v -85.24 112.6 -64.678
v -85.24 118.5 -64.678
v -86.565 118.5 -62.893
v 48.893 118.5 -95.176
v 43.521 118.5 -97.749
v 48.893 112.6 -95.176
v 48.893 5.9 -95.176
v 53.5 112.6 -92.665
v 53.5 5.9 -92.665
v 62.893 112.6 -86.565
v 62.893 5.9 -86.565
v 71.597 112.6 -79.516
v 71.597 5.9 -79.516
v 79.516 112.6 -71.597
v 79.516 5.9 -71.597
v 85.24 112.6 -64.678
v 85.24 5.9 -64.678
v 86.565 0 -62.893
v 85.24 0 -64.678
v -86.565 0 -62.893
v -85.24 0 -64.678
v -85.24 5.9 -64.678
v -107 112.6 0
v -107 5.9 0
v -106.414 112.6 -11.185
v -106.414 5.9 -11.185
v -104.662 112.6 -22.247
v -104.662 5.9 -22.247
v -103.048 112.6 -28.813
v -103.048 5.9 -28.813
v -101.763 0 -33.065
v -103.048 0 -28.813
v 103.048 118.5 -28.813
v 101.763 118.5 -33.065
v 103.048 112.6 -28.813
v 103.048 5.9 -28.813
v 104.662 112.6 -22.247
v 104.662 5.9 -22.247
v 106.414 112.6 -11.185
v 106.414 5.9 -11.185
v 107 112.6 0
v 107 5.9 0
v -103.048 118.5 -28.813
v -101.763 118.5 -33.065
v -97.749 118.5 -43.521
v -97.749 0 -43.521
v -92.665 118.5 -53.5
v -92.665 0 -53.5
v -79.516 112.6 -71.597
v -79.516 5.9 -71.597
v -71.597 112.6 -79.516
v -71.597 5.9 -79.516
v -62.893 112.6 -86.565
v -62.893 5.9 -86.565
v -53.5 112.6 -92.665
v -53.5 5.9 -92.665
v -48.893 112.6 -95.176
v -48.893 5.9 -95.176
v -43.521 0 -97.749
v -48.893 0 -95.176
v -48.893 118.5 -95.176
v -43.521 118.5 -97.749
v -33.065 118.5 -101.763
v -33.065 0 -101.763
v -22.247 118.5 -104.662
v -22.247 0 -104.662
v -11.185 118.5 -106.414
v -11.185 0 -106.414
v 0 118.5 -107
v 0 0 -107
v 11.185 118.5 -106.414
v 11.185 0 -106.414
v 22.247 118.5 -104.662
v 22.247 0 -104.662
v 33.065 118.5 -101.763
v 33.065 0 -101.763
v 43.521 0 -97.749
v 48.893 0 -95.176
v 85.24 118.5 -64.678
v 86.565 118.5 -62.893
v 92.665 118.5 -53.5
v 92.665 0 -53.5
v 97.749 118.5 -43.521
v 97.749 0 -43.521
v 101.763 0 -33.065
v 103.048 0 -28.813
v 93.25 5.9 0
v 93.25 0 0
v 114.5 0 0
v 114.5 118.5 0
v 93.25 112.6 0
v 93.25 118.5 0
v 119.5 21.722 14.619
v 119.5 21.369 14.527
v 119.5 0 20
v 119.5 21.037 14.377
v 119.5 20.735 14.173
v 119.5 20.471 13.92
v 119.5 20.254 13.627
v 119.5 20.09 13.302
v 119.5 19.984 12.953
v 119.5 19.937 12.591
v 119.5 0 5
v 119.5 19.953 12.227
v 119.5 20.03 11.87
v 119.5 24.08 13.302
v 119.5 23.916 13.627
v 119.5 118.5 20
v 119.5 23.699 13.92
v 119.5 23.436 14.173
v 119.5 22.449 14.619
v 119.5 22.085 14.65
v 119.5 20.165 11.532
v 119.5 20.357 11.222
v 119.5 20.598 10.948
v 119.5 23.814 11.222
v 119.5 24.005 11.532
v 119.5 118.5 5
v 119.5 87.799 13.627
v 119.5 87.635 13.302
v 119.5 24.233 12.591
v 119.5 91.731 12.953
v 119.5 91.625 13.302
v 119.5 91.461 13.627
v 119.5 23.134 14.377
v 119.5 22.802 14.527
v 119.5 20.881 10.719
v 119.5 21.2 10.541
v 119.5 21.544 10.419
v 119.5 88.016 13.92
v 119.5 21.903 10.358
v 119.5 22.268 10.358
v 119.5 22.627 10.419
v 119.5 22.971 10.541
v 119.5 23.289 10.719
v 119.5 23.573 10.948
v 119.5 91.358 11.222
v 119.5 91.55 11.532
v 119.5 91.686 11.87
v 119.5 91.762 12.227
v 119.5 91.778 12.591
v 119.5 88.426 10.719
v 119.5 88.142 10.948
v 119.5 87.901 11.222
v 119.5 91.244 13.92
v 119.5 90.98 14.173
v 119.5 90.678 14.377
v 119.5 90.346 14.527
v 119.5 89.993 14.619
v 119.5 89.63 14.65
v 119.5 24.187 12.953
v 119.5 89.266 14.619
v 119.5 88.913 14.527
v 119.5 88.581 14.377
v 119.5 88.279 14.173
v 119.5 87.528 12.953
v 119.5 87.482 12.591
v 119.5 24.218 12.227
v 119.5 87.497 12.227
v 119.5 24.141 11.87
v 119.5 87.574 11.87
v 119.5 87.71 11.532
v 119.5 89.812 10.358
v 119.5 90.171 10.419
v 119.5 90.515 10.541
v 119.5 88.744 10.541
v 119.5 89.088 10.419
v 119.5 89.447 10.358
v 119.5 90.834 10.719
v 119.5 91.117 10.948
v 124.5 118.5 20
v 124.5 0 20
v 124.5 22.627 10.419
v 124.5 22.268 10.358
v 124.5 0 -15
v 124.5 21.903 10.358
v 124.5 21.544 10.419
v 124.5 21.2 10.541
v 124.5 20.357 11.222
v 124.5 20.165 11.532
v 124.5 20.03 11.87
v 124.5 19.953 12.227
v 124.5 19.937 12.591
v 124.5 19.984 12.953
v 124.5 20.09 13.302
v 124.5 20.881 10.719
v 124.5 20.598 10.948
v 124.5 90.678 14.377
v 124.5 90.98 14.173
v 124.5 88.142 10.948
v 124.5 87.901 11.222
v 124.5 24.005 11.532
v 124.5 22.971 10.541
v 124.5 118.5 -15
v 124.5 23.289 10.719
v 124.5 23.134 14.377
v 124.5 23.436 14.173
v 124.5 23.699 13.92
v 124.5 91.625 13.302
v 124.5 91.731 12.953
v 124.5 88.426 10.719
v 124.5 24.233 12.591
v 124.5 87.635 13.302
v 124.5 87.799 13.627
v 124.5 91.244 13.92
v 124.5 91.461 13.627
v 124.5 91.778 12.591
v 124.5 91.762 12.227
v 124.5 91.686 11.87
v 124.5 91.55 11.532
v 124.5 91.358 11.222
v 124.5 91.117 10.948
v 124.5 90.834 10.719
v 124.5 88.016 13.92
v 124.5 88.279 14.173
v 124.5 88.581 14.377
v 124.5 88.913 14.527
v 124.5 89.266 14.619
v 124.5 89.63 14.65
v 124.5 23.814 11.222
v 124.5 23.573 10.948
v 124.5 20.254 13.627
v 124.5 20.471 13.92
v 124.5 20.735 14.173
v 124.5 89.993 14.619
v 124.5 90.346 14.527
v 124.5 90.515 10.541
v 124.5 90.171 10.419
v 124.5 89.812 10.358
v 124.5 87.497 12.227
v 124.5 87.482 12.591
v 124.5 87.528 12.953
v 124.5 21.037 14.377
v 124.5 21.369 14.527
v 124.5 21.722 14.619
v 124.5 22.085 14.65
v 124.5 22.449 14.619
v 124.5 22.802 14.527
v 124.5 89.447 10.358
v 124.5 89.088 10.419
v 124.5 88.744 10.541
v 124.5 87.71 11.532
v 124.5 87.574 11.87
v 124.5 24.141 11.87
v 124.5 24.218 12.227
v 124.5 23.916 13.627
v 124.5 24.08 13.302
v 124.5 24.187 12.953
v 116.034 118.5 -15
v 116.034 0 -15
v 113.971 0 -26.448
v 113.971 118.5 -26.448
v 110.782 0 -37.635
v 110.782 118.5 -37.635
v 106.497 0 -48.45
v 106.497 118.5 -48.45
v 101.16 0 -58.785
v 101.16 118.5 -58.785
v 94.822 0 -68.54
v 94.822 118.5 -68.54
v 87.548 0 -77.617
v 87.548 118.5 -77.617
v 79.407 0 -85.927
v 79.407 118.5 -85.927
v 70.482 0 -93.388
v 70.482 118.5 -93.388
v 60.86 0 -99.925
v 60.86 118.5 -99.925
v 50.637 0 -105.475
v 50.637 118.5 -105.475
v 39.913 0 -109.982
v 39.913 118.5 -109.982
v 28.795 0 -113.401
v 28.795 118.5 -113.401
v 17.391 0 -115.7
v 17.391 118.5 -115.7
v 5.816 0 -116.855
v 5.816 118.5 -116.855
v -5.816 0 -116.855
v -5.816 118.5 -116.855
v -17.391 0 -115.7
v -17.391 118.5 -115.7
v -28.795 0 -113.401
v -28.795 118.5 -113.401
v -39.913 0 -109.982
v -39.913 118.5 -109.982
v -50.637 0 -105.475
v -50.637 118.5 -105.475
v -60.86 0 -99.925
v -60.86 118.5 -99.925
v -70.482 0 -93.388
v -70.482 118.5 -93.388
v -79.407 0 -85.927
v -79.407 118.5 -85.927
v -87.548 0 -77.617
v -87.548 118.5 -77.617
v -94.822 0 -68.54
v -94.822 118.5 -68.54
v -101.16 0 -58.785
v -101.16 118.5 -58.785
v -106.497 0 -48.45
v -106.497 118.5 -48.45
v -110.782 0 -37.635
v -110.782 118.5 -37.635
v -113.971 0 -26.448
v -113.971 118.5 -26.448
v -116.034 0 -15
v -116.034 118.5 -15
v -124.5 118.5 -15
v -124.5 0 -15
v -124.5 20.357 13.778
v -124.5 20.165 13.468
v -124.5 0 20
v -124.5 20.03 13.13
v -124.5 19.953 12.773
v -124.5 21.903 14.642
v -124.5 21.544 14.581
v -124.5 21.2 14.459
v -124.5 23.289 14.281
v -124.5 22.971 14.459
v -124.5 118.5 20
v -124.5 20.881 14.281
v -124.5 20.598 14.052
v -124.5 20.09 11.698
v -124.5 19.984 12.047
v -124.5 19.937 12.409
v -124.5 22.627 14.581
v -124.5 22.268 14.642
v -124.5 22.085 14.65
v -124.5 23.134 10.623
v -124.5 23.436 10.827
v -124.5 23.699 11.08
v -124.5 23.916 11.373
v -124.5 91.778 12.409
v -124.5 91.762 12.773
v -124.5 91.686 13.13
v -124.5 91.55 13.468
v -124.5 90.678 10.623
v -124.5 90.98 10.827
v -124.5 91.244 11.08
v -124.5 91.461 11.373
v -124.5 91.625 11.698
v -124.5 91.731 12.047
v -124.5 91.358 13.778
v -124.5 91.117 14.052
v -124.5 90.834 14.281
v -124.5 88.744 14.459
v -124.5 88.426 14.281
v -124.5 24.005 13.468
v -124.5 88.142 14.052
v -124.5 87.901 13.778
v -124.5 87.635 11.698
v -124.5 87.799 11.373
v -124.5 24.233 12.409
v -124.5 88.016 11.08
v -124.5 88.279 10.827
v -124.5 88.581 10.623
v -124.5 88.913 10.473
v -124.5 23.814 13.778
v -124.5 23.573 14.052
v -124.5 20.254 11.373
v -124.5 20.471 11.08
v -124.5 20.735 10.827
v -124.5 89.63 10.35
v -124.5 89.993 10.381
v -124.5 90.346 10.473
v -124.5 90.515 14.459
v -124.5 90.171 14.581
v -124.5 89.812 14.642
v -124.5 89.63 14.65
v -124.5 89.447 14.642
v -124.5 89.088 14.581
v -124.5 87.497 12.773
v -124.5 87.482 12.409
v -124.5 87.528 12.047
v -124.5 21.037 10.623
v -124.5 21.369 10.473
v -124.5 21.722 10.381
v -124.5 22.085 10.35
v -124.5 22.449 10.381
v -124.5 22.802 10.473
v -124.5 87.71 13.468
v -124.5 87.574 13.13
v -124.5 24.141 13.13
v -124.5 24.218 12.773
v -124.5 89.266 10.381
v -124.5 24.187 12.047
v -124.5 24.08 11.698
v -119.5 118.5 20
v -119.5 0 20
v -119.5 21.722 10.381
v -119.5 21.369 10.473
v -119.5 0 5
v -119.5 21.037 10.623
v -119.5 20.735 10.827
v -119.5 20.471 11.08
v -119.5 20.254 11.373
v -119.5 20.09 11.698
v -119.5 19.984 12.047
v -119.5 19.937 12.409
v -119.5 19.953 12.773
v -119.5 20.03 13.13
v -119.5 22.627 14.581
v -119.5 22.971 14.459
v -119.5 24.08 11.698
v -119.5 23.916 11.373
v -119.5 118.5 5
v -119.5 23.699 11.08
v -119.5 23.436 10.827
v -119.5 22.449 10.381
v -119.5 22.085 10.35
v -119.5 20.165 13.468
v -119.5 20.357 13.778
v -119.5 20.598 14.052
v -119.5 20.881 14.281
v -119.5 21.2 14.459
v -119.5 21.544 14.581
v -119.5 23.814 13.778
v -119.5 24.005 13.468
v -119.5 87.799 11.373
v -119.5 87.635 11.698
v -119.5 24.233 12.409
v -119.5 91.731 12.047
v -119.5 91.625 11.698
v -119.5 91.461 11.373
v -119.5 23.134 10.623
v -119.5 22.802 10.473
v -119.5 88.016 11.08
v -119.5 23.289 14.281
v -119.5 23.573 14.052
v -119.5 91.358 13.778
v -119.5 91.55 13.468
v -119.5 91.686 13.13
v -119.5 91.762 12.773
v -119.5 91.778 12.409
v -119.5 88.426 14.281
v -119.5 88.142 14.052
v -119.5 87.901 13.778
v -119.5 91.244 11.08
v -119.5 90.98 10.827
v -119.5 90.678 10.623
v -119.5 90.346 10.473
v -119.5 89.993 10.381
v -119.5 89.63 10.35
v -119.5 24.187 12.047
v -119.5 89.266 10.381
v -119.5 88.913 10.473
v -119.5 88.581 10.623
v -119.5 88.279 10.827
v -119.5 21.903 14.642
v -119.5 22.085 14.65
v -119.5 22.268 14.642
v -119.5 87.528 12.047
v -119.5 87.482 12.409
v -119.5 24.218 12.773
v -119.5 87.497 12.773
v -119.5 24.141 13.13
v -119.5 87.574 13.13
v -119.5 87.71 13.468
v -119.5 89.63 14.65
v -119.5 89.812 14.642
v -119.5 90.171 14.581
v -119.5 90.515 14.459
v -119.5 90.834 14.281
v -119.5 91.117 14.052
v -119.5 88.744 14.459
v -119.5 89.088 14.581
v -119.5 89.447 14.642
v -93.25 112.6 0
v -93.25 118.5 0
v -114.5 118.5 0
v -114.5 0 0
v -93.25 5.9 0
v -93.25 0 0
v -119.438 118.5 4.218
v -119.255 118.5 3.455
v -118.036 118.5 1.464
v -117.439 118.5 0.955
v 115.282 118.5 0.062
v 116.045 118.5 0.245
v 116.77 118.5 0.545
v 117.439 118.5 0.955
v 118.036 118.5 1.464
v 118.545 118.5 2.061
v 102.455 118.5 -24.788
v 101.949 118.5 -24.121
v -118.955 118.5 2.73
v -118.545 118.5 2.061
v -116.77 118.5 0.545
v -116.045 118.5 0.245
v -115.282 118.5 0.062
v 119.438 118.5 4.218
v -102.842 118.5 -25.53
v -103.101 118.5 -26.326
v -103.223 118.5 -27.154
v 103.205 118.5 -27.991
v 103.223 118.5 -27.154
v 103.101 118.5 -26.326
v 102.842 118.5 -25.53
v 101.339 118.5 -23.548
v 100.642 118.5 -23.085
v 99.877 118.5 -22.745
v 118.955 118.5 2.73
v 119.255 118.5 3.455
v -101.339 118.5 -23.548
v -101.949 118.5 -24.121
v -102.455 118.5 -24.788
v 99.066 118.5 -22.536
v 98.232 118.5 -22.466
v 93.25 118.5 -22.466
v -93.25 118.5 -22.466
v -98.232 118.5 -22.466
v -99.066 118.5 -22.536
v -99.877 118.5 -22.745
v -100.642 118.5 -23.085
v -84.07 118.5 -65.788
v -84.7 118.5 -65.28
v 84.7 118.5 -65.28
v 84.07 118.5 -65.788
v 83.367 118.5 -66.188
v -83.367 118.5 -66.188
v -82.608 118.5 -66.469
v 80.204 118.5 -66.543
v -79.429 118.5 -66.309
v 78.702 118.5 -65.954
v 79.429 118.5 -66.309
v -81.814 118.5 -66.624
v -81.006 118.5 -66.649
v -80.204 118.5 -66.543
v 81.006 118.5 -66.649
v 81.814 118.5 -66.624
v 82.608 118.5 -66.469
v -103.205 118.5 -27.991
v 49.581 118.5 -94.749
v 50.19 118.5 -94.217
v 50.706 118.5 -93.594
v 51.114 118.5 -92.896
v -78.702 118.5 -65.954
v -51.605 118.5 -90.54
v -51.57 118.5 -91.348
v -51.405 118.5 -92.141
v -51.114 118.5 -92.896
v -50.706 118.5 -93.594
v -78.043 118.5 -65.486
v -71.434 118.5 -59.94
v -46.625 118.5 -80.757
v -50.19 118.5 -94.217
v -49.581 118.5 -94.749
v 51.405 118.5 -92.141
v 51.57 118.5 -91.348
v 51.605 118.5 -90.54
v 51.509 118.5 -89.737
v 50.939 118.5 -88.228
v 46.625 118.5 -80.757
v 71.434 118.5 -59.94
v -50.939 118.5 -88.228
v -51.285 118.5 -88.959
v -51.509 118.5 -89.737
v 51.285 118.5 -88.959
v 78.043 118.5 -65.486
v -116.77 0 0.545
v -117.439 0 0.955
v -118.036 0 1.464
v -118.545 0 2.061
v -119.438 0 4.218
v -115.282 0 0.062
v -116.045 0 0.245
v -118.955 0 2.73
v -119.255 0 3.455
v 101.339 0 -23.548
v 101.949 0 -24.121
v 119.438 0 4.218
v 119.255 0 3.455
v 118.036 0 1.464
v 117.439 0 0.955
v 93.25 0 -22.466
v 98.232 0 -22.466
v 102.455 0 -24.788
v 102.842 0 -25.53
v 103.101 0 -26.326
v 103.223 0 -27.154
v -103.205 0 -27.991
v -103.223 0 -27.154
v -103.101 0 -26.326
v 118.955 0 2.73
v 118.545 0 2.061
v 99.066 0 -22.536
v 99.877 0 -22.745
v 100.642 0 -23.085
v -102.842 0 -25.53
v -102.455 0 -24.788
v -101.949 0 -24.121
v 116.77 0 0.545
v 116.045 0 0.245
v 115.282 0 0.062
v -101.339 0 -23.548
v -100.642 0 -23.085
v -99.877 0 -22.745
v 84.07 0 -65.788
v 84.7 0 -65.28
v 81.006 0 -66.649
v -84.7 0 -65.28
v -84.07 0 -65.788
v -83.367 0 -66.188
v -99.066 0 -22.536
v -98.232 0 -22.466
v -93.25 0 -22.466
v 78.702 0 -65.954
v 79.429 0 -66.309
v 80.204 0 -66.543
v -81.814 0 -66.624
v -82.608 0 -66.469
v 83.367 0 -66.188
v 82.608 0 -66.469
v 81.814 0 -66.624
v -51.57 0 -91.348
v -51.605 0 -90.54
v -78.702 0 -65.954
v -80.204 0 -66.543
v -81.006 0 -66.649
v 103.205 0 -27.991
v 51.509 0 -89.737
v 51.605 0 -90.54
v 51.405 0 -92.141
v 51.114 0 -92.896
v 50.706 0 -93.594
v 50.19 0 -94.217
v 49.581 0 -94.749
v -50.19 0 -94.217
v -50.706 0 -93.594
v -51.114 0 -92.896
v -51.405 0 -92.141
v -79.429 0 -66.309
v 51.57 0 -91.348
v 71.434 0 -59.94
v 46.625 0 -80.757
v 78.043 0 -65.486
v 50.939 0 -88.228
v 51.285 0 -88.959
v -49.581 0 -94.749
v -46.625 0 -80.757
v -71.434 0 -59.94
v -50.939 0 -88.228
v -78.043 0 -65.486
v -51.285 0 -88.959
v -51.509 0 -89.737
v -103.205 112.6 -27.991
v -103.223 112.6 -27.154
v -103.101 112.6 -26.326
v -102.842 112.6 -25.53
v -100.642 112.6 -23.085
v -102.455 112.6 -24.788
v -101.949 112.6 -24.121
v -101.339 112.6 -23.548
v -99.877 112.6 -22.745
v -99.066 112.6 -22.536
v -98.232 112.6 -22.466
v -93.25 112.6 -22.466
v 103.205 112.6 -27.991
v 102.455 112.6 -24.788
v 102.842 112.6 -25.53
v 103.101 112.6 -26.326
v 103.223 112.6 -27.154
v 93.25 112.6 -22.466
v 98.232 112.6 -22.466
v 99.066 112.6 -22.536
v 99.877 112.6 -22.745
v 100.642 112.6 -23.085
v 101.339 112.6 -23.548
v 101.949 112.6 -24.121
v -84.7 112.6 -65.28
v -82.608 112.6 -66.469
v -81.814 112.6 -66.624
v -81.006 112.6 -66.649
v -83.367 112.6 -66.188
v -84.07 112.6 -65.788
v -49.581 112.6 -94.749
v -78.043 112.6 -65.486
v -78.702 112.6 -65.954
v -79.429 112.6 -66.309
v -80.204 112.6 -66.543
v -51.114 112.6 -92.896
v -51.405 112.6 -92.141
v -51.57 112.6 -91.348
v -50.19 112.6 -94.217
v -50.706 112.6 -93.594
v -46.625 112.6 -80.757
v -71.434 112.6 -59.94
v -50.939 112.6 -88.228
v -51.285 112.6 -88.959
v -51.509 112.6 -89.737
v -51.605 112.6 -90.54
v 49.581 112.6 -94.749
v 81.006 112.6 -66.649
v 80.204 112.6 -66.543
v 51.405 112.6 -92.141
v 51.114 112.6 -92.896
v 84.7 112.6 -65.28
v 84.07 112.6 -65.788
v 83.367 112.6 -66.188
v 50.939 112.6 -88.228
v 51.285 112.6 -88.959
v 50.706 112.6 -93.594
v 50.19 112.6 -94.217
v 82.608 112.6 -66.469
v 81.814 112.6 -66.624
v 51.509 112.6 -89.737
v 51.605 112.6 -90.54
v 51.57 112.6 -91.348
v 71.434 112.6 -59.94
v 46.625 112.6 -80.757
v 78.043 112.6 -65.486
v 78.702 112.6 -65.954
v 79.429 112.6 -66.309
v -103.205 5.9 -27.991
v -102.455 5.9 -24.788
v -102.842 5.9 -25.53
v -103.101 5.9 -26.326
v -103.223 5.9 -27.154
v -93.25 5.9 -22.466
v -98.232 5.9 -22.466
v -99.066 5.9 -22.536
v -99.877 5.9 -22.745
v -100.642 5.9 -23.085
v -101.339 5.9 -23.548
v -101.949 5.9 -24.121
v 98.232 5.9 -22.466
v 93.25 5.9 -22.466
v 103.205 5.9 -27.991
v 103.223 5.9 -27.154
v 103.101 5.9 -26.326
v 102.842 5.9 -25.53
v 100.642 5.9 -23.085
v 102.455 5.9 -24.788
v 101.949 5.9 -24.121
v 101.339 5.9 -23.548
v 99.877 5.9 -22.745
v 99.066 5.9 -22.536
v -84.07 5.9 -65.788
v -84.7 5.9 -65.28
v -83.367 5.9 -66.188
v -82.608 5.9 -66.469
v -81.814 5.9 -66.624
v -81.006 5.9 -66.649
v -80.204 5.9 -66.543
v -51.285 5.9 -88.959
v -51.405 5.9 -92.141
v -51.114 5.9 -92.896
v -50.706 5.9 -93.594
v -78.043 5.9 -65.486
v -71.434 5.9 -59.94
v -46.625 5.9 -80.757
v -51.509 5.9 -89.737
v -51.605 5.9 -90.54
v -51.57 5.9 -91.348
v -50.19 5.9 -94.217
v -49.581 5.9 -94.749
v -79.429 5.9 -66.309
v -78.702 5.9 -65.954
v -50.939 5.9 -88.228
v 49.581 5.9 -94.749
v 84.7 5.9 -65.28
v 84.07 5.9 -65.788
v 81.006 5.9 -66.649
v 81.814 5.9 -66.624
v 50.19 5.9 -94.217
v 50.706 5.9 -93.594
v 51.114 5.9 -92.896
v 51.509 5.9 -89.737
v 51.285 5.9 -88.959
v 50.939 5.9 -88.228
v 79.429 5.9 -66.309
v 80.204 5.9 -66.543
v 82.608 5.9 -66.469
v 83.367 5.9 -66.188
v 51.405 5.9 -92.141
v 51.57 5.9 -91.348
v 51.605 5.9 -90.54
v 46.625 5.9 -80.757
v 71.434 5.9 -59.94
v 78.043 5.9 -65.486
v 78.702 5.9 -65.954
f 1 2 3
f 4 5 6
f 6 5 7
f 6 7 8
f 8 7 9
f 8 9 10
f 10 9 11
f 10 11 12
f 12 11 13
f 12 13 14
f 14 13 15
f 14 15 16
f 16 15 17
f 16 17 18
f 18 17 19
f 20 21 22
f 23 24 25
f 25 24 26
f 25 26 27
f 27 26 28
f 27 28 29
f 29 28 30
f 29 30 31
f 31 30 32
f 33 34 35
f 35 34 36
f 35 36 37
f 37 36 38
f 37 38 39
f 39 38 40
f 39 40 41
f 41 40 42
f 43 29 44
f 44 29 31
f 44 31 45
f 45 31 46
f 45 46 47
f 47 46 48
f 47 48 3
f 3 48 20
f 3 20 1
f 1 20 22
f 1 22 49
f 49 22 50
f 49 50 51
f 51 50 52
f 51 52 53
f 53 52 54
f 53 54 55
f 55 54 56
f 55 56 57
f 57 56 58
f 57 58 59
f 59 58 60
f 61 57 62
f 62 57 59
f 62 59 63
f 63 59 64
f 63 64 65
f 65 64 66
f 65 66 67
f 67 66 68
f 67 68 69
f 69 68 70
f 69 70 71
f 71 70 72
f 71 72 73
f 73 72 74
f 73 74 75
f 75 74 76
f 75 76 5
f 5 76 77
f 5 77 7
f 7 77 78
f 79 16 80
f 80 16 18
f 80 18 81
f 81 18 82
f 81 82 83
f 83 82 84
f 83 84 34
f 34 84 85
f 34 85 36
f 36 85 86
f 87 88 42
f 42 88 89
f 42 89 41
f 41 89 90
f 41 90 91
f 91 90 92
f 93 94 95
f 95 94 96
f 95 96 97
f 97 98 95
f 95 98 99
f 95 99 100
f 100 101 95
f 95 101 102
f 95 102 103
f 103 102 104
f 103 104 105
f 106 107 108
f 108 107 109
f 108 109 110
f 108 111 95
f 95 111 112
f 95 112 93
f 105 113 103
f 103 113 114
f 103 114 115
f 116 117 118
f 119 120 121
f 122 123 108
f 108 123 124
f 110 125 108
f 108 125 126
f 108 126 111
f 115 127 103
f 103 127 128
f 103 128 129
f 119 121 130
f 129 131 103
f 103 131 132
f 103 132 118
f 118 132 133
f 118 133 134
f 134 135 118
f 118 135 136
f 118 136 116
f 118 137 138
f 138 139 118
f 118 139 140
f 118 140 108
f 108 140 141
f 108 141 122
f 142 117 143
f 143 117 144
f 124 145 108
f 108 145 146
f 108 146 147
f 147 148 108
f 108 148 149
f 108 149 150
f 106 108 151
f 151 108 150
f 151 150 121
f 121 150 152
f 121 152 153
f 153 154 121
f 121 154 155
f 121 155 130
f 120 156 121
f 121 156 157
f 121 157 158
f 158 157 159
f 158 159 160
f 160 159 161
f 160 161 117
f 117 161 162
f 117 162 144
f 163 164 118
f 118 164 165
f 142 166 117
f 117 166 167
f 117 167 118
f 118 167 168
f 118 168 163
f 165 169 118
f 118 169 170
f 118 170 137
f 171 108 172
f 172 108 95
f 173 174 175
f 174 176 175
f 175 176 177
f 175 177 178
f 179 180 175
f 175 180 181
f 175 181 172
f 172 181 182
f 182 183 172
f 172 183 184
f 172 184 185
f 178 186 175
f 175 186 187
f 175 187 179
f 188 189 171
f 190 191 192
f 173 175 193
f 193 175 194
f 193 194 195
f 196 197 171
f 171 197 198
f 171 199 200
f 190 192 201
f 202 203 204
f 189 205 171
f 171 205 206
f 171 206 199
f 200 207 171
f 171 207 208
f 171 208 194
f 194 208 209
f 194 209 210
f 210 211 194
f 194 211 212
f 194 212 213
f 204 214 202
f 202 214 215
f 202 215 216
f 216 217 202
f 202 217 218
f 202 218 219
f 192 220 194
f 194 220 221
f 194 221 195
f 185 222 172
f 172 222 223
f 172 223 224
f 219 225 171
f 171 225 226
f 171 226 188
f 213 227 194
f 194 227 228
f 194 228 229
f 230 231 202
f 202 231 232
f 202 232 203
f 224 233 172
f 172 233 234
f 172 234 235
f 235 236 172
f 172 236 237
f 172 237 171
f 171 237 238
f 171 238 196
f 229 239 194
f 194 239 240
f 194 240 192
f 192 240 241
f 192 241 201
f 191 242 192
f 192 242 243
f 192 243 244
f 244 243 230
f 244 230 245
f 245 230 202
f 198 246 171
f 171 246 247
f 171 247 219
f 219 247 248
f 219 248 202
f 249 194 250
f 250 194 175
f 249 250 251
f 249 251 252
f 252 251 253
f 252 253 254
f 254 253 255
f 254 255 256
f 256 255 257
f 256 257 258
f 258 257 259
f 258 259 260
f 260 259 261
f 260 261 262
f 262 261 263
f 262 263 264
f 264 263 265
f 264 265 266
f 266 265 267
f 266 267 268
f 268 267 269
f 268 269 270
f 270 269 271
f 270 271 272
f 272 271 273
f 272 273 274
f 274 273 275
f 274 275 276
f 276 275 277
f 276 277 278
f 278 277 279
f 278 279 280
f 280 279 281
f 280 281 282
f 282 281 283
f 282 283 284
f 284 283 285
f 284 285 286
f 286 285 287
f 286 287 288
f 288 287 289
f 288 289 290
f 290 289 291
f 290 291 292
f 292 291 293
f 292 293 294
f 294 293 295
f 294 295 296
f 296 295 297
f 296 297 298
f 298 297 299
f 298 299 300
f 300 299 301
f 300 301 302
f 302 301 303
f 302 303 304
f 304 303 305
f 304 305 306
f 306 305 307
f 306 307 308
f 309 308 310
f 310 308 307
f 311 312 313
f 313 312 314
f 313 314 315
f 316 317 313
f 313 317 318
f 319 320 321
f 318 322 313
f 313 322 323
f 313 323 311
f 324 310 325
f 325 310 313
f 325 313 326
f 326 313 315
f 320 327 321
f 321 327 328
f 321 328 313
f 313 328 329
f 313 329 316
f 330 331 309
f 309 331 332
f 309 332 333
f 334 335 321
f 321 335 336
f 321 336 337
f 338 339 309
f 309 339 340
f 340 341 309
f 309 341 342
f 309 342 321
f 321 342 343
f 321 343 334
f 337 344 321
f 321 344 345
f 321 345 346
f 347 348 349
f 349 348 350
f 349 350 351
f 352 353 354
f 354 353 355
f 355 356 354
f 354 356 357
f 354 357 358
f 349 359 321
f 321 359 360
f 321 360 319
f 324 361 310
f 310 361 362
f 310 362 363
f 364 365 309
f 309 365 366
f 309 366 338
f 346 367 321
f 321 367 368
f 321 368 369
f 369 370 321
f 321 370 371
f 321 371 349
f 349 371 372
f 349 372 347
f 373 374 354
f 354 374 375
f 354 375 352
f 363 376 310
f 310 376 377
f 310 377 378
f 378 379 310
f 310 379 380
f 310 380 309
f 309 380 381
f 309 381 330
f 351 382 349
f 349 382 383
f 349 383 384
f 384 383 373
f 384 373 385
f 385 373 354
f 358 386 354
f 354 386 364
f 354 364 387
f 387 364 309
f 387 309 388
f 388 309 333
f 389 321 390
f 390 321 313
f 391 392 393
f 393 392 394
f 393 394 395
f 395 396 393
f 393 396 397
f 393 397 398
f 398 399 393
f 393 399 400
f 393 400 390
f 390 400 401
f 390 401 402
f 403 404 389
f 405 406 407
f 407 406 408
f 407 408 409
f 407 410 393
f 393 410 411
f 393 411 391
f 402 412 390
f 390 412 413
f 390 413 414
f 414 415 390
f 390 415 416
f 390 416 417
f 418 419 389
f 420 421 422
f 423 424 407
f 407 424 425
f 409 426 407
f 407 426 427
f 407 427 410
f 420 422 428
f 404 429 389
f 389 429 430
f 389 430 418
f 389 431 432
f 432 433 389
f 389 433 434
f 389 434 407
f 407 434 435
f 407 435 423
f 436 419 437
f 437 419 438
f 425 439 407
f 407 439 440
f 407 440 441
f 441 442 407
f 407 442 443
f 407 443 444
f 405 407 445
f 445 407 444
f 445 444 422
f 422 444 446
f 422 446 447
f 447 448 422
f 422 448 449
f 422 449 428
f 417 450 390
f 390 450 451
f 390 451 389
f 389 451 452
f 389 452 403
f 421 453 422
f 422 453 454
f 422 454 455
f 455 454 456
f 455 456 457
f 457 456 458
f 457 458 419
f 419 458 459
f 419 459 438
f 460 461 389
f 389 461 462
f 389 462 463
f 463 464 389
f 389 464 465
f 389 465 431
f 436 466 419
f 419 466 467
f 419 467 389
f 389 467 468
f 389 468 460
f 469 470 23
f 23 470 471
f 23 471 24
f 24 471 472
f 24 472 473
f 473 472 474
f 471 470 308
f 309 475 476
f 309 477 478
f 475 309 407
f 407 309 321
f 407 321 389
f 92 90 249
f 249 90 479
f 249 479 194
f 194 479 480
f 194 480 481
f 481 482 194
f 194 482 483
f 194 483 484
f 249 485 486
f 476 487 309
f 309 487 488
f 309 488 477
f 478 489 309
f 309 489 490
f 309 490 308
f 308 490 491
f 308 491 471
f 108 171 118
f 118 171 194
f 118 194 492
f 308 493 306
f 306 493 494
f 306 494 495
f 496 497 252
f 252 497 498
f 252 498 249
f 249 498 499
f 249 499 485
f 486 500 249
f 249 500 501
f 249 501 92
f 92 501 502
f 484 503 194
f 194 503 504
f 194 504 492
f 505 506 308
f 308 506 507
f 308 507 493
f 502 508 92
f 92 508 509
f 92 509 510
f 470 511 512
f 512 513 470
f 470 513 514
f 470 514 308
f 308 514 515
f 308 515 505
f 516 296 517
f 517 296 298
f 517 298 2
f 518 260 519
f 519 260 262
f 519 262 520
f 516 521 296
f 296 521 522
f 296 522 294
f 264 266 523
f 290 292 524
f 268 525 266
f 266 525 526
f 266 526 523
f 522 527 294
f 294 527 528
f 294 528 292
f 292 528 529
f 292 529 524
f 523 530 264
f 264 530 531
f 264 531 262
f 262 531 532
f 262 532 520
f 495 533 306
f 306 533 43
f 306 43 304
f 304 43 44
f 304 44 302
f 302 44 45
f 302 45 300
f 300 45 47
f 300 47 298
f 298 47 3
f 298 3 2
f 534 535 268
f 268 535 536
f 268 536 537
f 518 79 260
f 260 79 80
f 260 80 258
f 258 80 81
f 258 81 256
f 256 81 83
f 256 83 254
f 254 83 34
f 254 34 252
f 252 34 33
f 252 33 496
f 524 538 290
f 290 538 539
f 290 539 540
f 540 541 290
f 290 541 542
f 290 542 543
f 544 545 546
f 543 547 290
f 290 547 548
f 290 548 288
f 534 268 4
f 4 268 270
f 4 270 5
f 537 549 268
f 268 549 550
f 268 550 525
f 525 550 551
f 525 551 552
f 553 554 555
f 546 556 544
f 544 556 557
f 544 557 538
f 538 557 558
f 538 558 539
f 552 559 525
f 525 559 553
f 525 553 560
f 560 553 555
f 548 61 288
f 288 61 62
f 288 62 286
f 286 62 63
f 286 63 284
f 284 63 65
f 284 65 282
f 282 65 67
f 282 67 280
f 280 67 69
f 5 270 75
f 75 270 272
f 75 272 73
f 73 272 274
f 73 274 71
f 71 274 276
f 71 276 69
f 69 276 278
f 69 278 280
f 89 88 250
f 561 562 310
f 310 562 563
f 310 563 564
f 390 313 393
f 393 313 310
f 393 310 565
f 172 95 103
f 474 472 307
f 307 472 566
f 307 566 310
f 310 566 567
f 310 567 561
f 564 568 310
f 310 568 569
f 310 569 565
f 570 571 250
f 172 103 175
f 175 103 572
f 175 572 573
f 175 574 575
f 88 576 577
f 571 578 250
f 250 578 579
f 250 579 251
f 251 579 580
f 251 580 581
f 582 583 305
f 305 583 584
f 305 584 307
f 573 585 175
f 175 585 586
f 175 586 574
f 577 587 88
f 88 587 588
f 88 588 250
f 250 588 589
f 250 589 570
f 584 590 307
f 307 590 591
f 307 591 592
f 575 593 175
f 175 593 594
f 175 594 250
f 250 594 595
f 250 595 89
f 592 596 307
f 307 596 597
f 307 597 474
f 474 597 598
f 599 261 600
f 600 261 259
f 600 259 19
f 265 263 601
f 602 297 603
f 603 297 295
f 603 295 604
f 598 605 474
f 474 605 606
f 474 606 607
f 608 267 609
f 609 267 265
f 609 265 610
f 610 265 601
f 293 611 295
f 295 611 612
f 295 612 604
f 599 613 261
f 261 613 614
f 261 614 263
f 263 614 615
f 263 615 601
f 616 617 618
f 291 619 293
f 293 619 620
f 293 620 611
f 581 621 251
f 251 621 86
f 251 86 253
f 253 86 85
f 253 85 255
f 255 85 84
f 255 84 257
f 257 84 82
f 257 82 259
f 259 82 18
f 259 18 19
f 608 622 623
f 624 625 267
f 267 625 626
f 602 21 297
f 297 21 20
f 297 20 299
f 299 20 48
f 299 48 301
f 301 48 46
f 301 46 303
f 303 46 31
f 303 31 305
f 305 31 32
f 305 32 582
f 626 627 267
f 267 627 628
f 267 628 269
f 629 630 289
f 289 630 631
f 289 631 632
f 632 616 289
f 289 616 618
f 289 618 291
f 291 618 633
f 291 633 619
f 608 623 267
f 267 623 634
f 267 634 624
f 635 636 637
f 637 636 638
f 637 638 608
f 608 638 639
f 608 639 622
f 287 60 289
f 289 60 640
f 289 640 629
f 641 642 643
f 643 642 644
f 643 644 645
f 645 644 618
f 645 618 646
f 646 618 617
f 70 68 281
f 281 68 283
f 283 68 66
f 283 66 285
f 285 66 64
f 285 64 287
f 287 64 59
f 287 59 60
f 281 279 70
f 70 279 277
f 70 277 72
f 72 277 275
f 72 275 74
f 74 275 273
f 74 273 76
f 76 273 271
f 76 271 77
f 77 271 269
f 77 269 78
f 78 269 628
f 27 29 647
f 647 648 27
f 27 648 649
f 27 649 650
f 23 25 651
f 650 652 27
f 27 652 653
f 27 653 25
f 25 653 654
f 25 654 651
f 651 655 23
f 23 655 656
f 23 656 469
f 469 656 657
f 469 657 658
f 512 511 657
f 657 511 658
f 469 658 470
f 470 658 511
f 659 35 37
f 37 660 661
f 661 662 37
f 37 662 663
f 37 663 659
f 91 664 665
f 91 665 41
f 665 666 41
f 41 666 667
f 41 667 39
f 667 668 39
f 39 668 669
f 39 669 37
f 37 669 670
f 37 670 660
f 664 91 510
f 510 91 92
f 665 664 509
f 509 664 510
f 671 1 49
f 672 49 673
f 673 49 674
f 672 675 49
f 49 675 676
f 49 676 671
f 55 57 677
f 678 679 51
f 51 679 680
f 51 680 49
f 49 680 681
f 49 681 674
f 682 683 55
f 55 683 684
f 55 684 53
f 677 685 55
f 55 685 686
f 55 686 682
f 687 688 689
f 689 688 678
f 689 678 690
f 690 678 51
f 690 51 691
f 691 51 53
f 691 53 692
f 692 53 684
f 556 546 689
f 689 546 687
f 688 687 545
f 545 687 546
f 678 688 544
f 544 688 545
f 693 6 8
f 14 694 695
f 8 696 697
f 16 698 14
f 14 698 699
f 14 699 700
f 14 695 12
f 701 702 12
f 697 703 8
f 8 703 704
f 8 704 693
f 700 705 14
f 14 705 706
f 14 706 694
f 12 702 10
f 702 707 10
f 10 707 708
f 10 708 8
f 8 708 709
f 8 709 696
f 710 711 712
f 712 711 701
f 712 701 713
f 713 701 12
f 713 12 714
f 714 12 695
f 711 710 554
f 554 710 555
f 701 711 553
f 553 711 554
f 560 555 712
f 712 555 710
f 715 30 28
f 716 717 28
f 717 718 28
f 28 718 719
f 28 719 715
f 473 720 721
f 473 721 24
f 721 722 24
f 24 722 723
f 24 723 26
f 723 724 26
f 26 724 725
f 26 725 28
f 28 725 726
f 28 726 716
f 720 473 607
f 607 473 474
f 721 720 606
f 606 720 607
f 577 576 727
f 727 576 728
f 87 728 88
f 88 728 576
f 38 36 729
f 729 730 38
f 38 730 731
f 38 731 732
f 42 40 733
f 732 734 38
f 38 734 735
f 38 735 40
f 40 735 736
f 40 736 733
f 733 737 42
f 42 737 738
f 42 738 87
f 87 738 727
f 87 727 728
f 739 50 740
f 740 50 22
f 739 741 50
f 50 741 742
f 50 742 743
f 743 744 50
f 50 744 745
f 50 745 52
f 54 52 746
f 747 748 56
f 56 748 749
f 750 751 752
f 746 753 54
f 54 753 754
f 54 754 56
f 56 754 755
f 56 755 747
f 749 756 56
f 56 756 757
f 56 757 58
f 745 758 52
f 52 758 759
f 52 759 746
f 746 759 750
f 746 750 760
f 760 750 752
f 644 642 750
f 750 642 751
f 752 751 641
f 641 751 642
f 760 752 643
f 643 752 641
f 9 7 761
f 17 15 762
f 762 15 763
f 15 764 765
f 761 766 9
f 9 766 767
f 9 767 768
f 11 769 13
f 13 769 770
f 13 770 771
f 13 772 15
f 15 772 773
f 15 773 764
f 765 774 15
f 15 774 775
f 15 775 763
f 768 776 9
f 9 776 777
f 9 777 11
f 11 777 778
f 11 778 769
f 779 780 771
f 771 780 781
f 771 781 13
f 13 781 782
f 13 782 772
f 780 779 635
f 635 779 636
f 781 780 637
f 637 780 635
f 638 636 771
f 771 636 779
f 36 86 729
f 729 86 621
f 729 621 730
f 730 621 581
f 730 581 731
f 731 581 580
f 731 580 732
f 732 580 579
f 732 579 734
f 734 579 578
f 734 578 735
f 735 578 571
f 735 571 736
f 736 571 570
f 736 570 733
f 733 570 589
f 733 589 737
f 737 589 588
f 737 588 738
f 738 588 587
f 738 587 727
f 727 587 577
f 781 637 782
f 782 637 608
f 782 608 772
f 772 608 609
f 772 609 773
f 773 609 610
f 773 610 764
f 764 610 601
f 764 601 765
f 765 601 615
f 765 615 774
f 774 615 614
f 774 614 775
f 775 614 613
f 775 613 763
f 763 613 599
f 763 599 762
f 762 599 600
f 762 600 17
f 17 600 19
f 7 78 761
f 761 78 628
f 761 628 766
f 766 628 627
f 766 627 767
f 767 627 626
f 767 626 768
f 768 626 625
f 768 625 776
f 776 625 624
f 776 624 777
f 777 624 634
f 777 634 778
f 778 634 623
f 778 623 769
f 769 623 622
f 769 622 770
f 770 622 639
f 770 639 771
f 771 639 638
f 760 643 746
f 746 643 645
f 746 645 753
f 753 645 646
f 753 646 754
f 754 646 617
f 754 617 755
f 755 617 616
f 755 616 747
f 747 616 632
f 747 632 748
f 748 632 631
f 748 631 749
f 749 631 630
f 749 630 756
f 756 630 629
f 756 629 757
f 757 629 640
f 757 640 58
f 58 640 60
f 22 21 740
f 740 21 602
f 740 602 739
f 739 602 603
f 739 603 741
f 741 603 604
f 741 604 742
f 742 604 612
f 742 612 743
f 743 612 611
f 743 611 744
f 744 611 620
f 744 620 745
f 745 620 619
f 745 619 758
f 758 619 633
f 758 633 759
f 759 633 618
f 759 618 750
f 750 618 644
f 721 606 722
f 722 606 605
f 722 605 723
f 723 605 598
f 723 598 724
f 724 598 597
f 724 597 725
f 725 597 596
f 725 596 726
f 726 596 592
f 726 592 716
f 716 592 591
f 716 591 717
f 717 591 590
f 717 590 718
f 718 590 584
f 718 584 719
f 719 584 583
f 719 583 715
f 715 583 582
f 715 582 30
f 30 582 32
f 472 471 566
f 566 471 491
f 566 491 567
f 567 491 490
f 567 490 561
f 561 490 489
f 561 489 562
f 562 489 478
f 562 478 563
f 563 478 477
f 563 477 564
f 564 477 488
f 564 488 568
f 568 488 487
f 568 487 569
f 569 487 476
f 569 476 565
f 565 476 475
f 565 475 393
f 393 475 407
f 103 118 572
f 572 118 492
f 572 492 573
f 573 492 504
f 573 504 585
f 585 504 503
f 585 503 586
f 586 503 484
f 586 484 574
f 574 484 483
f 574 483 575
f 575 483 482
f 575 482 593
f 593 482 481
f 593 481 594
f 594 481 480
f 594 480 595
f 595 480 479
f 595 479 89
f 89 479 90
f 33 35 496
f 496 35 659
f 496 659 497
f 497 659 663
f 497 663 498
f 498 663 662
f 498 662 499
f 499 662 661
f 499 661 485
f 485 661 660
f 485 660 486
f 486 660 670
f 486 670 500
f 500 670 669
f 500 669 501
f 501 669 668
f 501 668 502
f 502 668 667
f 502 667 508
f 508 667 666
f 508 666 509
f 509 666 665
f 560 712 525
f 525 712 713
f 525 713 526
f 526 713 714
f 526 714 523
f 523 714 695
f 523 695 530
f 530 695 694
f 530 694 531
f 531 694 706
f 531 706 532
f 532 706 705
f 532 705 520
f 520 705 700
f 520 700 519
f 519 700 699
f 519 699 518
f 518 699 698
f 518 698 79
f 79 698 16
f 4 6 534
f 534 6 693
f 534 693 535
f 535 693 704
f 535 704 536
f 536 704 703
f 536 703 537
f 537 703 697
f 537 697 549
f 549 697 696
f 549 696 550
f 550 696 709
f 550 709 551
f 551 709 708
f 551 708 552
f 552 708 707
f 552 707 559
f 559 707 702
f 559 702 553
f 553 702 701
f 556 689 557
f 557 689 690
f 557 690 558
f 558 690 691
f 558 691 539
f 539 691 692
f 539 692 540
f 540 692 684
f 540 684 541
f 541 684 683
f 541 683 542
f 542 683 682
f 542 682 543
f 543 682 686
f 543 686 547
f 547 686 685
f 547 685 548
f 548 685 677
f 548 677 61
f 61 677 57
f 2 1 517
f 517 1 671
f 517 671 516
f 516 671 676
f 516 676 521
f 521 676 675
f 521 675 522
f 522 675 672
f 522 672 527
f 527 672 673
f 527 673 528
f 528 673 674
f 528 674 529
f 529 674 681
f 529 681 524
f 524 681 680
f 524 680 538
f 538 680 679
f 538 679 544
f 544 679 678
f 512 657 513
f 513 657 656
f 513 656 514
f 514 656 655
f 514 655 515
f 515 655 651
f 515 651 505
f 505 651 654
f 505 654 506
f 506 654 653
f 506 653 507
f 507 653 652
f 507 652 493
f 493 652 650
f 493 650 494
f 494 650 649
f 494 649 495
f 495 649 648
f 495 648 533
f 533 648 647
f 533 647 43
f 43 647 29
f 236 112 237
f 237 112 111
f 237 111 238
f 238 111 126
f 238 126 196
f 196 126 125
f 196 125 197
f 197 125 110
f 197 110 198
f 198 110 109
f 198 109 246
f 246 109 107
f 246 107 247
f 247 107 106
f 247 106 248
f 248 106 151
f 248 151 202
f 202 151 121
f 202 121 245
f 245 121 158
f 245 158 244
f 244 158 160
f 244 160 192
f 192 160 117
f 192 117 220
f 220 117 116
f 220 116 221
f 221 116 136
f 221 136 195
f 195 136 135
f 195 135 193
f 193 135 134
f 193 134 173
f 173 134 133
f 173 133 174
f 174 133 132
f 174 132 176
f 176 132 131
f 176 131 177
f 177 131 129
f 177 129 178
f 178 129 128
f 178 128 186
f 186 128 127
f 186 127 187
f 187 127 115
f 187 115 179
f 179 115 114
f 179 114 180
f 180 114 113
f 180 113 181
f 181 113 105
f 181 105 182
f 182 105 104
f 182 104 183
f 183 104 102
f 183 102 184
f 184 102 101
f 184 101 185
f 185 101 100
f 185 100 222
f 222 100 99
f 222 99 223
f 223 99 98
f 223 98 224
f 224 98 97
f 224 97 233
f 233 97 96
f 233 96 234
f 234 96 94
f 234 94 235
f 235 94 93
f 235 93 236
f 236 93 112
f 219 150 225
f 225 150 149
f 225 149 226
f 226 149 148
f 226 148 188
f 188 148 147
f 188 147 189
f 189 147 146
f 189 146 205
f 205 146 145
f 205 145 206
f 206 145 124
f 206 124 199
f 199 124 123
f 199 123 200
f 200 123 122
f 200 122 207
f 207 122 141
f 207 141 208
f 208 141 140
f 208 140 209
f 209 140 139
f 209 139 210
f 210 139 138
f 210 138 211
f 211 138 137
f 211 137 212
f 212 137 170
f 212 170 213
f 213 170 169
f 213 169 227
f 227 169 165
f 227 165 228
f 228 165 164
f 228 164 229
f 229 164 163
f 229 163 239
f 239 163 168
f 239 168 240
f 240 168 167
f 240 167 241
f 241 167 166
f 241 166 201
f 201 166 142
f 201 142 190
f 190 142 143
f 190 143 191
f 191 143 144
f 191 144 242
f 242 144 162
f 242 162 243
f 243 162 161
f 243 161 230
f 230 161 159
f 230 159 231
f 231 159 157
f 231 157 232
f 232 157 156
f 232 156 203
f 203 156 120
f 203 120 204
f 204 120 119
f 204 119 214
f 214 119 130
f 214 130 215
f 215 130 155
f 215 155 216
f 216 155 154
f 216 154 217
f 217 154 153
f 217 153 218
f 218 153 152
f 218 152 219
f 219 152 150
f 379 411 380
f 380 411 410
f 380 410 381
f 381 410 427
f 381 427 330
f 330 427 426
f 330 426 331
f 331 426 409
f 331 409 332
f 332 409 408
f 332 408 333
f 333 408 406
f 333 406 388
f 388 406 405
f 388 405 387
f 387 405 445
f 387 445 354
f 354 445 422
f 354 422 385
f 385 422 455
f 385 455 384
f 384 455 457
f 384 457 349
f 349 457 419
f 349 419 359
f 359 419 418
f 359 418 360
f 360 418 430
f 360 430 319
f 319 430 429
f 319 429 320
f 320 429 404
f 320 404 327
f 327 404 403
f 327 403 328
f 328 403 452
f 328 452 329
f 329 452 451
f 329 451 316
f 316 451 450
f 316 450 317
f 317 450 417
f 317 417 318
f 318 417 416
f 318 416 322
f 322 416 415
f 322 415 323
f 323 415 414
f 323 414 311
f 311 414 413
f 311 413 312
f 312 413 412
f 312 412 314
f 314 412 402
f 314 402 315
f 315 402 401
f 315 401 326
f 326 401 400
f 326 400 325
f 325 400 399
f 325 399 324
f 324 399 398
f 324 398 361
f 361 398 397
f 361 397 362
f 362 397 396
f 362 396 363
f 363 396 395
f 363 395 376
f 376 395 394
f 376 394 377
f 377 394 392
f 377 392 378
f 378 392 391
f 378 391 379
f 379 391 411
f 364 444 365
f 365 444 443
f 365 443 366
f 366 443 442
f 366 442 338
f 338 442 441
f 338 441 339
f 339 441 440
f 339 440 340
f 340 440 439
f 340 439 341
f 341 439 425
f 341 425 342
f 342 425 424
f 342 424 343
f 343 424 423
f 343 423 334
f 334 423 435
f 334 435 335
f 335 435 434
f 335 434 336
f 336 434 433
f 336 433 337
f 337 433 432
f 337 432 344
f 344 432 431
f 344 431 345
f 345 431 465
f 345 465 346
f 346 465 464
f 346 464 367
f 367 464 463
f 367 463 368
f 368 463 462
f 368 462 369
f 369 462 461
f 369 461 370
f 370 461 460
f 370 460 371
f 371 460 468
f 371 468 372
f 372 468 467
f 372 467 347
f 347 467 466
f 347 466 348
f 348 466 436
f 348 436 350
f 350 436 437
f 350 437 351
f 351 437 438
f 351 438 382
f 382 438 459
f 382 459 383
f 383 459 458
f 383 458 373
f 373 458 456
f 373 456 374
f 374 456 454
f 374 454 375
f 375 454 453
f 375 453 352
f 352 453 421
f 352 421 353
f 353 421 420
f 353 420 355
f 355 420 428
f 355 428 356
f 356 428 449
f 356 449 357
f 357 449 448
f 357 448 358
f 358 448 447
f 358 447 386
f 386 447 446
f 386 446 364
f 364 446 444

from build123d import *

# Parameters (mm, degrees)
BOSS_EXTRUDE1_DEPTH    = 118.5
BOSS_EXTRUDE2_DEPTH    = 5.9
FILLET1_R              = 5
CUT_EXTRUDE1_START     = -5
CUT_EXTRUDE1_OUTLINE_R = 2.15
CUT_EXTRUDE1_DEPTH     = 5


# Read off the part's stored shape, not the designer's step: Cut-Extrude1
with BuildPart() as part:
    # Sketch1 → Boss-Extrude1 (new body)
    with BuildSketch(Plane(origin=(0, 0, 0), x_dir=(1, 0, 0), z_dir=(0, 1, 0))):
        with BuildLine():
            Line((-116.034477635, 15), (-124.5, 15))
            Line((-124.5, 15), (-124.5, -20))
            Line((-124.5, -20), (-119.5, -20))
            Line((-119.5, -20), (-119.5, 0))
            Line((-119.5, 0), (-107, 0))
            ThreePointArc((-107, 0), (0, 107), (107, 0))
            Line((107, 0), (119.5, 0))
            Line((119.5, 0), (119.5, -20))
            Line((119.5, -20), (124.5, -20))
            Line((124.5, -20), (124.5, 15))
            Line((124.5, 15), (116.034477635, 15))
            ThreePointArc((116.034477635, 15), (0, 117), (-116.034477635, 15))
        make_face()
    extrude(amount=BOSS_EXTRUDE1_DEPTH)

    # Sketch2 → Boss-Extrude2 (add)
    with BuildSketch(Plane(origin=(0, 118.5, 0), x_dir=(1, 0, 0), z_dir=(0, 1, 0))):
        Polygon((-113.25, 0), (-93.25, 0), (-93.25, 22.466274611), (-110.99922975, 22.466274611), align=None)
        Polygon((-86.754533183, 72.795696797), (-71.433644321, 59.939944603), (-46.625, 80.756868903), (-56.625, 98.077376979), align=None)
        Polygon((110.99922975, 22.466274611), (113.25, 0), (93.25, 0), (93.25, 22.466274611), align=None)
        Polygon((46.625, 80.756868903), (56.625, 98.077376979), (86.754533183, 72.795696797), (71.433644321, 59.939944603), align=None)
    boss_extrude2 = extrude(amount=-BOSS_EXTRUDE2_DEPTH)

    # Mirror1: Boss-Extrude2 across plane
    add(boss_extrude2.mirror(Plane.ZX.offset(59.25)))

    # Fillet1
    fillet1_edges = [part.edges().sort_by_distance(p)[0] for p in [
        (53.5, 115.55, -92.664718205),
        (81.966755414, 115.55, -68.778274236),
        (-104.614848397, 2.95, -22.466274611),
        (104.614848397, 2.95, -22.466274611),
        (-81.966755414, 2.95, -68.778274236),
        (-53.5, 2.95, -92.664718205),
        (81.966755414, 2.95, -68.778274236),
        (53.5, 2.95, -92.664718205),
        (119.5, 59.25, 0),
        (-119.5, 59.25, 0),
        (-104.614848397, 115.55, -22.466274611),
        (104.614848397, 115.55, -22.466274611),
        (-53.5, 115.55, -92.664718205),
        (-81.966755414, 115.55, -68.778274236),
    ]]
    fillet(fillet1_edges, radius=FILLET1_R)

    # Cut-Extrude1 outline → Cut-Extrude1 (cut)
    with BuildSketch(Plane.ZY.offset(-119.5).offset(CUT_EXTRUDE1_START)):
        with Locations((12.5, 22.085284338)):
            Circle(CUT_EXTRUDE1_OUTLINE_R)
        with Locations((12.5, 89.629742653)):
            Circle(CUT_EXTRUDE1_OUTLINE_R)
    cut_extrude1 = extrude(amount=CUT_EXTRUDE1_DEPTH, mode=Mode.SUBTRACT)

    # Mirror2: Cut-Extrude1 across plane
    add(cut_extrude1.mirror(Plane(origin=(0, 0, 0), x_dir=(0, 0, 1), z_dir=(1, 0, 0))), mode=Mode.SUBTRACT)


solid = part.part
